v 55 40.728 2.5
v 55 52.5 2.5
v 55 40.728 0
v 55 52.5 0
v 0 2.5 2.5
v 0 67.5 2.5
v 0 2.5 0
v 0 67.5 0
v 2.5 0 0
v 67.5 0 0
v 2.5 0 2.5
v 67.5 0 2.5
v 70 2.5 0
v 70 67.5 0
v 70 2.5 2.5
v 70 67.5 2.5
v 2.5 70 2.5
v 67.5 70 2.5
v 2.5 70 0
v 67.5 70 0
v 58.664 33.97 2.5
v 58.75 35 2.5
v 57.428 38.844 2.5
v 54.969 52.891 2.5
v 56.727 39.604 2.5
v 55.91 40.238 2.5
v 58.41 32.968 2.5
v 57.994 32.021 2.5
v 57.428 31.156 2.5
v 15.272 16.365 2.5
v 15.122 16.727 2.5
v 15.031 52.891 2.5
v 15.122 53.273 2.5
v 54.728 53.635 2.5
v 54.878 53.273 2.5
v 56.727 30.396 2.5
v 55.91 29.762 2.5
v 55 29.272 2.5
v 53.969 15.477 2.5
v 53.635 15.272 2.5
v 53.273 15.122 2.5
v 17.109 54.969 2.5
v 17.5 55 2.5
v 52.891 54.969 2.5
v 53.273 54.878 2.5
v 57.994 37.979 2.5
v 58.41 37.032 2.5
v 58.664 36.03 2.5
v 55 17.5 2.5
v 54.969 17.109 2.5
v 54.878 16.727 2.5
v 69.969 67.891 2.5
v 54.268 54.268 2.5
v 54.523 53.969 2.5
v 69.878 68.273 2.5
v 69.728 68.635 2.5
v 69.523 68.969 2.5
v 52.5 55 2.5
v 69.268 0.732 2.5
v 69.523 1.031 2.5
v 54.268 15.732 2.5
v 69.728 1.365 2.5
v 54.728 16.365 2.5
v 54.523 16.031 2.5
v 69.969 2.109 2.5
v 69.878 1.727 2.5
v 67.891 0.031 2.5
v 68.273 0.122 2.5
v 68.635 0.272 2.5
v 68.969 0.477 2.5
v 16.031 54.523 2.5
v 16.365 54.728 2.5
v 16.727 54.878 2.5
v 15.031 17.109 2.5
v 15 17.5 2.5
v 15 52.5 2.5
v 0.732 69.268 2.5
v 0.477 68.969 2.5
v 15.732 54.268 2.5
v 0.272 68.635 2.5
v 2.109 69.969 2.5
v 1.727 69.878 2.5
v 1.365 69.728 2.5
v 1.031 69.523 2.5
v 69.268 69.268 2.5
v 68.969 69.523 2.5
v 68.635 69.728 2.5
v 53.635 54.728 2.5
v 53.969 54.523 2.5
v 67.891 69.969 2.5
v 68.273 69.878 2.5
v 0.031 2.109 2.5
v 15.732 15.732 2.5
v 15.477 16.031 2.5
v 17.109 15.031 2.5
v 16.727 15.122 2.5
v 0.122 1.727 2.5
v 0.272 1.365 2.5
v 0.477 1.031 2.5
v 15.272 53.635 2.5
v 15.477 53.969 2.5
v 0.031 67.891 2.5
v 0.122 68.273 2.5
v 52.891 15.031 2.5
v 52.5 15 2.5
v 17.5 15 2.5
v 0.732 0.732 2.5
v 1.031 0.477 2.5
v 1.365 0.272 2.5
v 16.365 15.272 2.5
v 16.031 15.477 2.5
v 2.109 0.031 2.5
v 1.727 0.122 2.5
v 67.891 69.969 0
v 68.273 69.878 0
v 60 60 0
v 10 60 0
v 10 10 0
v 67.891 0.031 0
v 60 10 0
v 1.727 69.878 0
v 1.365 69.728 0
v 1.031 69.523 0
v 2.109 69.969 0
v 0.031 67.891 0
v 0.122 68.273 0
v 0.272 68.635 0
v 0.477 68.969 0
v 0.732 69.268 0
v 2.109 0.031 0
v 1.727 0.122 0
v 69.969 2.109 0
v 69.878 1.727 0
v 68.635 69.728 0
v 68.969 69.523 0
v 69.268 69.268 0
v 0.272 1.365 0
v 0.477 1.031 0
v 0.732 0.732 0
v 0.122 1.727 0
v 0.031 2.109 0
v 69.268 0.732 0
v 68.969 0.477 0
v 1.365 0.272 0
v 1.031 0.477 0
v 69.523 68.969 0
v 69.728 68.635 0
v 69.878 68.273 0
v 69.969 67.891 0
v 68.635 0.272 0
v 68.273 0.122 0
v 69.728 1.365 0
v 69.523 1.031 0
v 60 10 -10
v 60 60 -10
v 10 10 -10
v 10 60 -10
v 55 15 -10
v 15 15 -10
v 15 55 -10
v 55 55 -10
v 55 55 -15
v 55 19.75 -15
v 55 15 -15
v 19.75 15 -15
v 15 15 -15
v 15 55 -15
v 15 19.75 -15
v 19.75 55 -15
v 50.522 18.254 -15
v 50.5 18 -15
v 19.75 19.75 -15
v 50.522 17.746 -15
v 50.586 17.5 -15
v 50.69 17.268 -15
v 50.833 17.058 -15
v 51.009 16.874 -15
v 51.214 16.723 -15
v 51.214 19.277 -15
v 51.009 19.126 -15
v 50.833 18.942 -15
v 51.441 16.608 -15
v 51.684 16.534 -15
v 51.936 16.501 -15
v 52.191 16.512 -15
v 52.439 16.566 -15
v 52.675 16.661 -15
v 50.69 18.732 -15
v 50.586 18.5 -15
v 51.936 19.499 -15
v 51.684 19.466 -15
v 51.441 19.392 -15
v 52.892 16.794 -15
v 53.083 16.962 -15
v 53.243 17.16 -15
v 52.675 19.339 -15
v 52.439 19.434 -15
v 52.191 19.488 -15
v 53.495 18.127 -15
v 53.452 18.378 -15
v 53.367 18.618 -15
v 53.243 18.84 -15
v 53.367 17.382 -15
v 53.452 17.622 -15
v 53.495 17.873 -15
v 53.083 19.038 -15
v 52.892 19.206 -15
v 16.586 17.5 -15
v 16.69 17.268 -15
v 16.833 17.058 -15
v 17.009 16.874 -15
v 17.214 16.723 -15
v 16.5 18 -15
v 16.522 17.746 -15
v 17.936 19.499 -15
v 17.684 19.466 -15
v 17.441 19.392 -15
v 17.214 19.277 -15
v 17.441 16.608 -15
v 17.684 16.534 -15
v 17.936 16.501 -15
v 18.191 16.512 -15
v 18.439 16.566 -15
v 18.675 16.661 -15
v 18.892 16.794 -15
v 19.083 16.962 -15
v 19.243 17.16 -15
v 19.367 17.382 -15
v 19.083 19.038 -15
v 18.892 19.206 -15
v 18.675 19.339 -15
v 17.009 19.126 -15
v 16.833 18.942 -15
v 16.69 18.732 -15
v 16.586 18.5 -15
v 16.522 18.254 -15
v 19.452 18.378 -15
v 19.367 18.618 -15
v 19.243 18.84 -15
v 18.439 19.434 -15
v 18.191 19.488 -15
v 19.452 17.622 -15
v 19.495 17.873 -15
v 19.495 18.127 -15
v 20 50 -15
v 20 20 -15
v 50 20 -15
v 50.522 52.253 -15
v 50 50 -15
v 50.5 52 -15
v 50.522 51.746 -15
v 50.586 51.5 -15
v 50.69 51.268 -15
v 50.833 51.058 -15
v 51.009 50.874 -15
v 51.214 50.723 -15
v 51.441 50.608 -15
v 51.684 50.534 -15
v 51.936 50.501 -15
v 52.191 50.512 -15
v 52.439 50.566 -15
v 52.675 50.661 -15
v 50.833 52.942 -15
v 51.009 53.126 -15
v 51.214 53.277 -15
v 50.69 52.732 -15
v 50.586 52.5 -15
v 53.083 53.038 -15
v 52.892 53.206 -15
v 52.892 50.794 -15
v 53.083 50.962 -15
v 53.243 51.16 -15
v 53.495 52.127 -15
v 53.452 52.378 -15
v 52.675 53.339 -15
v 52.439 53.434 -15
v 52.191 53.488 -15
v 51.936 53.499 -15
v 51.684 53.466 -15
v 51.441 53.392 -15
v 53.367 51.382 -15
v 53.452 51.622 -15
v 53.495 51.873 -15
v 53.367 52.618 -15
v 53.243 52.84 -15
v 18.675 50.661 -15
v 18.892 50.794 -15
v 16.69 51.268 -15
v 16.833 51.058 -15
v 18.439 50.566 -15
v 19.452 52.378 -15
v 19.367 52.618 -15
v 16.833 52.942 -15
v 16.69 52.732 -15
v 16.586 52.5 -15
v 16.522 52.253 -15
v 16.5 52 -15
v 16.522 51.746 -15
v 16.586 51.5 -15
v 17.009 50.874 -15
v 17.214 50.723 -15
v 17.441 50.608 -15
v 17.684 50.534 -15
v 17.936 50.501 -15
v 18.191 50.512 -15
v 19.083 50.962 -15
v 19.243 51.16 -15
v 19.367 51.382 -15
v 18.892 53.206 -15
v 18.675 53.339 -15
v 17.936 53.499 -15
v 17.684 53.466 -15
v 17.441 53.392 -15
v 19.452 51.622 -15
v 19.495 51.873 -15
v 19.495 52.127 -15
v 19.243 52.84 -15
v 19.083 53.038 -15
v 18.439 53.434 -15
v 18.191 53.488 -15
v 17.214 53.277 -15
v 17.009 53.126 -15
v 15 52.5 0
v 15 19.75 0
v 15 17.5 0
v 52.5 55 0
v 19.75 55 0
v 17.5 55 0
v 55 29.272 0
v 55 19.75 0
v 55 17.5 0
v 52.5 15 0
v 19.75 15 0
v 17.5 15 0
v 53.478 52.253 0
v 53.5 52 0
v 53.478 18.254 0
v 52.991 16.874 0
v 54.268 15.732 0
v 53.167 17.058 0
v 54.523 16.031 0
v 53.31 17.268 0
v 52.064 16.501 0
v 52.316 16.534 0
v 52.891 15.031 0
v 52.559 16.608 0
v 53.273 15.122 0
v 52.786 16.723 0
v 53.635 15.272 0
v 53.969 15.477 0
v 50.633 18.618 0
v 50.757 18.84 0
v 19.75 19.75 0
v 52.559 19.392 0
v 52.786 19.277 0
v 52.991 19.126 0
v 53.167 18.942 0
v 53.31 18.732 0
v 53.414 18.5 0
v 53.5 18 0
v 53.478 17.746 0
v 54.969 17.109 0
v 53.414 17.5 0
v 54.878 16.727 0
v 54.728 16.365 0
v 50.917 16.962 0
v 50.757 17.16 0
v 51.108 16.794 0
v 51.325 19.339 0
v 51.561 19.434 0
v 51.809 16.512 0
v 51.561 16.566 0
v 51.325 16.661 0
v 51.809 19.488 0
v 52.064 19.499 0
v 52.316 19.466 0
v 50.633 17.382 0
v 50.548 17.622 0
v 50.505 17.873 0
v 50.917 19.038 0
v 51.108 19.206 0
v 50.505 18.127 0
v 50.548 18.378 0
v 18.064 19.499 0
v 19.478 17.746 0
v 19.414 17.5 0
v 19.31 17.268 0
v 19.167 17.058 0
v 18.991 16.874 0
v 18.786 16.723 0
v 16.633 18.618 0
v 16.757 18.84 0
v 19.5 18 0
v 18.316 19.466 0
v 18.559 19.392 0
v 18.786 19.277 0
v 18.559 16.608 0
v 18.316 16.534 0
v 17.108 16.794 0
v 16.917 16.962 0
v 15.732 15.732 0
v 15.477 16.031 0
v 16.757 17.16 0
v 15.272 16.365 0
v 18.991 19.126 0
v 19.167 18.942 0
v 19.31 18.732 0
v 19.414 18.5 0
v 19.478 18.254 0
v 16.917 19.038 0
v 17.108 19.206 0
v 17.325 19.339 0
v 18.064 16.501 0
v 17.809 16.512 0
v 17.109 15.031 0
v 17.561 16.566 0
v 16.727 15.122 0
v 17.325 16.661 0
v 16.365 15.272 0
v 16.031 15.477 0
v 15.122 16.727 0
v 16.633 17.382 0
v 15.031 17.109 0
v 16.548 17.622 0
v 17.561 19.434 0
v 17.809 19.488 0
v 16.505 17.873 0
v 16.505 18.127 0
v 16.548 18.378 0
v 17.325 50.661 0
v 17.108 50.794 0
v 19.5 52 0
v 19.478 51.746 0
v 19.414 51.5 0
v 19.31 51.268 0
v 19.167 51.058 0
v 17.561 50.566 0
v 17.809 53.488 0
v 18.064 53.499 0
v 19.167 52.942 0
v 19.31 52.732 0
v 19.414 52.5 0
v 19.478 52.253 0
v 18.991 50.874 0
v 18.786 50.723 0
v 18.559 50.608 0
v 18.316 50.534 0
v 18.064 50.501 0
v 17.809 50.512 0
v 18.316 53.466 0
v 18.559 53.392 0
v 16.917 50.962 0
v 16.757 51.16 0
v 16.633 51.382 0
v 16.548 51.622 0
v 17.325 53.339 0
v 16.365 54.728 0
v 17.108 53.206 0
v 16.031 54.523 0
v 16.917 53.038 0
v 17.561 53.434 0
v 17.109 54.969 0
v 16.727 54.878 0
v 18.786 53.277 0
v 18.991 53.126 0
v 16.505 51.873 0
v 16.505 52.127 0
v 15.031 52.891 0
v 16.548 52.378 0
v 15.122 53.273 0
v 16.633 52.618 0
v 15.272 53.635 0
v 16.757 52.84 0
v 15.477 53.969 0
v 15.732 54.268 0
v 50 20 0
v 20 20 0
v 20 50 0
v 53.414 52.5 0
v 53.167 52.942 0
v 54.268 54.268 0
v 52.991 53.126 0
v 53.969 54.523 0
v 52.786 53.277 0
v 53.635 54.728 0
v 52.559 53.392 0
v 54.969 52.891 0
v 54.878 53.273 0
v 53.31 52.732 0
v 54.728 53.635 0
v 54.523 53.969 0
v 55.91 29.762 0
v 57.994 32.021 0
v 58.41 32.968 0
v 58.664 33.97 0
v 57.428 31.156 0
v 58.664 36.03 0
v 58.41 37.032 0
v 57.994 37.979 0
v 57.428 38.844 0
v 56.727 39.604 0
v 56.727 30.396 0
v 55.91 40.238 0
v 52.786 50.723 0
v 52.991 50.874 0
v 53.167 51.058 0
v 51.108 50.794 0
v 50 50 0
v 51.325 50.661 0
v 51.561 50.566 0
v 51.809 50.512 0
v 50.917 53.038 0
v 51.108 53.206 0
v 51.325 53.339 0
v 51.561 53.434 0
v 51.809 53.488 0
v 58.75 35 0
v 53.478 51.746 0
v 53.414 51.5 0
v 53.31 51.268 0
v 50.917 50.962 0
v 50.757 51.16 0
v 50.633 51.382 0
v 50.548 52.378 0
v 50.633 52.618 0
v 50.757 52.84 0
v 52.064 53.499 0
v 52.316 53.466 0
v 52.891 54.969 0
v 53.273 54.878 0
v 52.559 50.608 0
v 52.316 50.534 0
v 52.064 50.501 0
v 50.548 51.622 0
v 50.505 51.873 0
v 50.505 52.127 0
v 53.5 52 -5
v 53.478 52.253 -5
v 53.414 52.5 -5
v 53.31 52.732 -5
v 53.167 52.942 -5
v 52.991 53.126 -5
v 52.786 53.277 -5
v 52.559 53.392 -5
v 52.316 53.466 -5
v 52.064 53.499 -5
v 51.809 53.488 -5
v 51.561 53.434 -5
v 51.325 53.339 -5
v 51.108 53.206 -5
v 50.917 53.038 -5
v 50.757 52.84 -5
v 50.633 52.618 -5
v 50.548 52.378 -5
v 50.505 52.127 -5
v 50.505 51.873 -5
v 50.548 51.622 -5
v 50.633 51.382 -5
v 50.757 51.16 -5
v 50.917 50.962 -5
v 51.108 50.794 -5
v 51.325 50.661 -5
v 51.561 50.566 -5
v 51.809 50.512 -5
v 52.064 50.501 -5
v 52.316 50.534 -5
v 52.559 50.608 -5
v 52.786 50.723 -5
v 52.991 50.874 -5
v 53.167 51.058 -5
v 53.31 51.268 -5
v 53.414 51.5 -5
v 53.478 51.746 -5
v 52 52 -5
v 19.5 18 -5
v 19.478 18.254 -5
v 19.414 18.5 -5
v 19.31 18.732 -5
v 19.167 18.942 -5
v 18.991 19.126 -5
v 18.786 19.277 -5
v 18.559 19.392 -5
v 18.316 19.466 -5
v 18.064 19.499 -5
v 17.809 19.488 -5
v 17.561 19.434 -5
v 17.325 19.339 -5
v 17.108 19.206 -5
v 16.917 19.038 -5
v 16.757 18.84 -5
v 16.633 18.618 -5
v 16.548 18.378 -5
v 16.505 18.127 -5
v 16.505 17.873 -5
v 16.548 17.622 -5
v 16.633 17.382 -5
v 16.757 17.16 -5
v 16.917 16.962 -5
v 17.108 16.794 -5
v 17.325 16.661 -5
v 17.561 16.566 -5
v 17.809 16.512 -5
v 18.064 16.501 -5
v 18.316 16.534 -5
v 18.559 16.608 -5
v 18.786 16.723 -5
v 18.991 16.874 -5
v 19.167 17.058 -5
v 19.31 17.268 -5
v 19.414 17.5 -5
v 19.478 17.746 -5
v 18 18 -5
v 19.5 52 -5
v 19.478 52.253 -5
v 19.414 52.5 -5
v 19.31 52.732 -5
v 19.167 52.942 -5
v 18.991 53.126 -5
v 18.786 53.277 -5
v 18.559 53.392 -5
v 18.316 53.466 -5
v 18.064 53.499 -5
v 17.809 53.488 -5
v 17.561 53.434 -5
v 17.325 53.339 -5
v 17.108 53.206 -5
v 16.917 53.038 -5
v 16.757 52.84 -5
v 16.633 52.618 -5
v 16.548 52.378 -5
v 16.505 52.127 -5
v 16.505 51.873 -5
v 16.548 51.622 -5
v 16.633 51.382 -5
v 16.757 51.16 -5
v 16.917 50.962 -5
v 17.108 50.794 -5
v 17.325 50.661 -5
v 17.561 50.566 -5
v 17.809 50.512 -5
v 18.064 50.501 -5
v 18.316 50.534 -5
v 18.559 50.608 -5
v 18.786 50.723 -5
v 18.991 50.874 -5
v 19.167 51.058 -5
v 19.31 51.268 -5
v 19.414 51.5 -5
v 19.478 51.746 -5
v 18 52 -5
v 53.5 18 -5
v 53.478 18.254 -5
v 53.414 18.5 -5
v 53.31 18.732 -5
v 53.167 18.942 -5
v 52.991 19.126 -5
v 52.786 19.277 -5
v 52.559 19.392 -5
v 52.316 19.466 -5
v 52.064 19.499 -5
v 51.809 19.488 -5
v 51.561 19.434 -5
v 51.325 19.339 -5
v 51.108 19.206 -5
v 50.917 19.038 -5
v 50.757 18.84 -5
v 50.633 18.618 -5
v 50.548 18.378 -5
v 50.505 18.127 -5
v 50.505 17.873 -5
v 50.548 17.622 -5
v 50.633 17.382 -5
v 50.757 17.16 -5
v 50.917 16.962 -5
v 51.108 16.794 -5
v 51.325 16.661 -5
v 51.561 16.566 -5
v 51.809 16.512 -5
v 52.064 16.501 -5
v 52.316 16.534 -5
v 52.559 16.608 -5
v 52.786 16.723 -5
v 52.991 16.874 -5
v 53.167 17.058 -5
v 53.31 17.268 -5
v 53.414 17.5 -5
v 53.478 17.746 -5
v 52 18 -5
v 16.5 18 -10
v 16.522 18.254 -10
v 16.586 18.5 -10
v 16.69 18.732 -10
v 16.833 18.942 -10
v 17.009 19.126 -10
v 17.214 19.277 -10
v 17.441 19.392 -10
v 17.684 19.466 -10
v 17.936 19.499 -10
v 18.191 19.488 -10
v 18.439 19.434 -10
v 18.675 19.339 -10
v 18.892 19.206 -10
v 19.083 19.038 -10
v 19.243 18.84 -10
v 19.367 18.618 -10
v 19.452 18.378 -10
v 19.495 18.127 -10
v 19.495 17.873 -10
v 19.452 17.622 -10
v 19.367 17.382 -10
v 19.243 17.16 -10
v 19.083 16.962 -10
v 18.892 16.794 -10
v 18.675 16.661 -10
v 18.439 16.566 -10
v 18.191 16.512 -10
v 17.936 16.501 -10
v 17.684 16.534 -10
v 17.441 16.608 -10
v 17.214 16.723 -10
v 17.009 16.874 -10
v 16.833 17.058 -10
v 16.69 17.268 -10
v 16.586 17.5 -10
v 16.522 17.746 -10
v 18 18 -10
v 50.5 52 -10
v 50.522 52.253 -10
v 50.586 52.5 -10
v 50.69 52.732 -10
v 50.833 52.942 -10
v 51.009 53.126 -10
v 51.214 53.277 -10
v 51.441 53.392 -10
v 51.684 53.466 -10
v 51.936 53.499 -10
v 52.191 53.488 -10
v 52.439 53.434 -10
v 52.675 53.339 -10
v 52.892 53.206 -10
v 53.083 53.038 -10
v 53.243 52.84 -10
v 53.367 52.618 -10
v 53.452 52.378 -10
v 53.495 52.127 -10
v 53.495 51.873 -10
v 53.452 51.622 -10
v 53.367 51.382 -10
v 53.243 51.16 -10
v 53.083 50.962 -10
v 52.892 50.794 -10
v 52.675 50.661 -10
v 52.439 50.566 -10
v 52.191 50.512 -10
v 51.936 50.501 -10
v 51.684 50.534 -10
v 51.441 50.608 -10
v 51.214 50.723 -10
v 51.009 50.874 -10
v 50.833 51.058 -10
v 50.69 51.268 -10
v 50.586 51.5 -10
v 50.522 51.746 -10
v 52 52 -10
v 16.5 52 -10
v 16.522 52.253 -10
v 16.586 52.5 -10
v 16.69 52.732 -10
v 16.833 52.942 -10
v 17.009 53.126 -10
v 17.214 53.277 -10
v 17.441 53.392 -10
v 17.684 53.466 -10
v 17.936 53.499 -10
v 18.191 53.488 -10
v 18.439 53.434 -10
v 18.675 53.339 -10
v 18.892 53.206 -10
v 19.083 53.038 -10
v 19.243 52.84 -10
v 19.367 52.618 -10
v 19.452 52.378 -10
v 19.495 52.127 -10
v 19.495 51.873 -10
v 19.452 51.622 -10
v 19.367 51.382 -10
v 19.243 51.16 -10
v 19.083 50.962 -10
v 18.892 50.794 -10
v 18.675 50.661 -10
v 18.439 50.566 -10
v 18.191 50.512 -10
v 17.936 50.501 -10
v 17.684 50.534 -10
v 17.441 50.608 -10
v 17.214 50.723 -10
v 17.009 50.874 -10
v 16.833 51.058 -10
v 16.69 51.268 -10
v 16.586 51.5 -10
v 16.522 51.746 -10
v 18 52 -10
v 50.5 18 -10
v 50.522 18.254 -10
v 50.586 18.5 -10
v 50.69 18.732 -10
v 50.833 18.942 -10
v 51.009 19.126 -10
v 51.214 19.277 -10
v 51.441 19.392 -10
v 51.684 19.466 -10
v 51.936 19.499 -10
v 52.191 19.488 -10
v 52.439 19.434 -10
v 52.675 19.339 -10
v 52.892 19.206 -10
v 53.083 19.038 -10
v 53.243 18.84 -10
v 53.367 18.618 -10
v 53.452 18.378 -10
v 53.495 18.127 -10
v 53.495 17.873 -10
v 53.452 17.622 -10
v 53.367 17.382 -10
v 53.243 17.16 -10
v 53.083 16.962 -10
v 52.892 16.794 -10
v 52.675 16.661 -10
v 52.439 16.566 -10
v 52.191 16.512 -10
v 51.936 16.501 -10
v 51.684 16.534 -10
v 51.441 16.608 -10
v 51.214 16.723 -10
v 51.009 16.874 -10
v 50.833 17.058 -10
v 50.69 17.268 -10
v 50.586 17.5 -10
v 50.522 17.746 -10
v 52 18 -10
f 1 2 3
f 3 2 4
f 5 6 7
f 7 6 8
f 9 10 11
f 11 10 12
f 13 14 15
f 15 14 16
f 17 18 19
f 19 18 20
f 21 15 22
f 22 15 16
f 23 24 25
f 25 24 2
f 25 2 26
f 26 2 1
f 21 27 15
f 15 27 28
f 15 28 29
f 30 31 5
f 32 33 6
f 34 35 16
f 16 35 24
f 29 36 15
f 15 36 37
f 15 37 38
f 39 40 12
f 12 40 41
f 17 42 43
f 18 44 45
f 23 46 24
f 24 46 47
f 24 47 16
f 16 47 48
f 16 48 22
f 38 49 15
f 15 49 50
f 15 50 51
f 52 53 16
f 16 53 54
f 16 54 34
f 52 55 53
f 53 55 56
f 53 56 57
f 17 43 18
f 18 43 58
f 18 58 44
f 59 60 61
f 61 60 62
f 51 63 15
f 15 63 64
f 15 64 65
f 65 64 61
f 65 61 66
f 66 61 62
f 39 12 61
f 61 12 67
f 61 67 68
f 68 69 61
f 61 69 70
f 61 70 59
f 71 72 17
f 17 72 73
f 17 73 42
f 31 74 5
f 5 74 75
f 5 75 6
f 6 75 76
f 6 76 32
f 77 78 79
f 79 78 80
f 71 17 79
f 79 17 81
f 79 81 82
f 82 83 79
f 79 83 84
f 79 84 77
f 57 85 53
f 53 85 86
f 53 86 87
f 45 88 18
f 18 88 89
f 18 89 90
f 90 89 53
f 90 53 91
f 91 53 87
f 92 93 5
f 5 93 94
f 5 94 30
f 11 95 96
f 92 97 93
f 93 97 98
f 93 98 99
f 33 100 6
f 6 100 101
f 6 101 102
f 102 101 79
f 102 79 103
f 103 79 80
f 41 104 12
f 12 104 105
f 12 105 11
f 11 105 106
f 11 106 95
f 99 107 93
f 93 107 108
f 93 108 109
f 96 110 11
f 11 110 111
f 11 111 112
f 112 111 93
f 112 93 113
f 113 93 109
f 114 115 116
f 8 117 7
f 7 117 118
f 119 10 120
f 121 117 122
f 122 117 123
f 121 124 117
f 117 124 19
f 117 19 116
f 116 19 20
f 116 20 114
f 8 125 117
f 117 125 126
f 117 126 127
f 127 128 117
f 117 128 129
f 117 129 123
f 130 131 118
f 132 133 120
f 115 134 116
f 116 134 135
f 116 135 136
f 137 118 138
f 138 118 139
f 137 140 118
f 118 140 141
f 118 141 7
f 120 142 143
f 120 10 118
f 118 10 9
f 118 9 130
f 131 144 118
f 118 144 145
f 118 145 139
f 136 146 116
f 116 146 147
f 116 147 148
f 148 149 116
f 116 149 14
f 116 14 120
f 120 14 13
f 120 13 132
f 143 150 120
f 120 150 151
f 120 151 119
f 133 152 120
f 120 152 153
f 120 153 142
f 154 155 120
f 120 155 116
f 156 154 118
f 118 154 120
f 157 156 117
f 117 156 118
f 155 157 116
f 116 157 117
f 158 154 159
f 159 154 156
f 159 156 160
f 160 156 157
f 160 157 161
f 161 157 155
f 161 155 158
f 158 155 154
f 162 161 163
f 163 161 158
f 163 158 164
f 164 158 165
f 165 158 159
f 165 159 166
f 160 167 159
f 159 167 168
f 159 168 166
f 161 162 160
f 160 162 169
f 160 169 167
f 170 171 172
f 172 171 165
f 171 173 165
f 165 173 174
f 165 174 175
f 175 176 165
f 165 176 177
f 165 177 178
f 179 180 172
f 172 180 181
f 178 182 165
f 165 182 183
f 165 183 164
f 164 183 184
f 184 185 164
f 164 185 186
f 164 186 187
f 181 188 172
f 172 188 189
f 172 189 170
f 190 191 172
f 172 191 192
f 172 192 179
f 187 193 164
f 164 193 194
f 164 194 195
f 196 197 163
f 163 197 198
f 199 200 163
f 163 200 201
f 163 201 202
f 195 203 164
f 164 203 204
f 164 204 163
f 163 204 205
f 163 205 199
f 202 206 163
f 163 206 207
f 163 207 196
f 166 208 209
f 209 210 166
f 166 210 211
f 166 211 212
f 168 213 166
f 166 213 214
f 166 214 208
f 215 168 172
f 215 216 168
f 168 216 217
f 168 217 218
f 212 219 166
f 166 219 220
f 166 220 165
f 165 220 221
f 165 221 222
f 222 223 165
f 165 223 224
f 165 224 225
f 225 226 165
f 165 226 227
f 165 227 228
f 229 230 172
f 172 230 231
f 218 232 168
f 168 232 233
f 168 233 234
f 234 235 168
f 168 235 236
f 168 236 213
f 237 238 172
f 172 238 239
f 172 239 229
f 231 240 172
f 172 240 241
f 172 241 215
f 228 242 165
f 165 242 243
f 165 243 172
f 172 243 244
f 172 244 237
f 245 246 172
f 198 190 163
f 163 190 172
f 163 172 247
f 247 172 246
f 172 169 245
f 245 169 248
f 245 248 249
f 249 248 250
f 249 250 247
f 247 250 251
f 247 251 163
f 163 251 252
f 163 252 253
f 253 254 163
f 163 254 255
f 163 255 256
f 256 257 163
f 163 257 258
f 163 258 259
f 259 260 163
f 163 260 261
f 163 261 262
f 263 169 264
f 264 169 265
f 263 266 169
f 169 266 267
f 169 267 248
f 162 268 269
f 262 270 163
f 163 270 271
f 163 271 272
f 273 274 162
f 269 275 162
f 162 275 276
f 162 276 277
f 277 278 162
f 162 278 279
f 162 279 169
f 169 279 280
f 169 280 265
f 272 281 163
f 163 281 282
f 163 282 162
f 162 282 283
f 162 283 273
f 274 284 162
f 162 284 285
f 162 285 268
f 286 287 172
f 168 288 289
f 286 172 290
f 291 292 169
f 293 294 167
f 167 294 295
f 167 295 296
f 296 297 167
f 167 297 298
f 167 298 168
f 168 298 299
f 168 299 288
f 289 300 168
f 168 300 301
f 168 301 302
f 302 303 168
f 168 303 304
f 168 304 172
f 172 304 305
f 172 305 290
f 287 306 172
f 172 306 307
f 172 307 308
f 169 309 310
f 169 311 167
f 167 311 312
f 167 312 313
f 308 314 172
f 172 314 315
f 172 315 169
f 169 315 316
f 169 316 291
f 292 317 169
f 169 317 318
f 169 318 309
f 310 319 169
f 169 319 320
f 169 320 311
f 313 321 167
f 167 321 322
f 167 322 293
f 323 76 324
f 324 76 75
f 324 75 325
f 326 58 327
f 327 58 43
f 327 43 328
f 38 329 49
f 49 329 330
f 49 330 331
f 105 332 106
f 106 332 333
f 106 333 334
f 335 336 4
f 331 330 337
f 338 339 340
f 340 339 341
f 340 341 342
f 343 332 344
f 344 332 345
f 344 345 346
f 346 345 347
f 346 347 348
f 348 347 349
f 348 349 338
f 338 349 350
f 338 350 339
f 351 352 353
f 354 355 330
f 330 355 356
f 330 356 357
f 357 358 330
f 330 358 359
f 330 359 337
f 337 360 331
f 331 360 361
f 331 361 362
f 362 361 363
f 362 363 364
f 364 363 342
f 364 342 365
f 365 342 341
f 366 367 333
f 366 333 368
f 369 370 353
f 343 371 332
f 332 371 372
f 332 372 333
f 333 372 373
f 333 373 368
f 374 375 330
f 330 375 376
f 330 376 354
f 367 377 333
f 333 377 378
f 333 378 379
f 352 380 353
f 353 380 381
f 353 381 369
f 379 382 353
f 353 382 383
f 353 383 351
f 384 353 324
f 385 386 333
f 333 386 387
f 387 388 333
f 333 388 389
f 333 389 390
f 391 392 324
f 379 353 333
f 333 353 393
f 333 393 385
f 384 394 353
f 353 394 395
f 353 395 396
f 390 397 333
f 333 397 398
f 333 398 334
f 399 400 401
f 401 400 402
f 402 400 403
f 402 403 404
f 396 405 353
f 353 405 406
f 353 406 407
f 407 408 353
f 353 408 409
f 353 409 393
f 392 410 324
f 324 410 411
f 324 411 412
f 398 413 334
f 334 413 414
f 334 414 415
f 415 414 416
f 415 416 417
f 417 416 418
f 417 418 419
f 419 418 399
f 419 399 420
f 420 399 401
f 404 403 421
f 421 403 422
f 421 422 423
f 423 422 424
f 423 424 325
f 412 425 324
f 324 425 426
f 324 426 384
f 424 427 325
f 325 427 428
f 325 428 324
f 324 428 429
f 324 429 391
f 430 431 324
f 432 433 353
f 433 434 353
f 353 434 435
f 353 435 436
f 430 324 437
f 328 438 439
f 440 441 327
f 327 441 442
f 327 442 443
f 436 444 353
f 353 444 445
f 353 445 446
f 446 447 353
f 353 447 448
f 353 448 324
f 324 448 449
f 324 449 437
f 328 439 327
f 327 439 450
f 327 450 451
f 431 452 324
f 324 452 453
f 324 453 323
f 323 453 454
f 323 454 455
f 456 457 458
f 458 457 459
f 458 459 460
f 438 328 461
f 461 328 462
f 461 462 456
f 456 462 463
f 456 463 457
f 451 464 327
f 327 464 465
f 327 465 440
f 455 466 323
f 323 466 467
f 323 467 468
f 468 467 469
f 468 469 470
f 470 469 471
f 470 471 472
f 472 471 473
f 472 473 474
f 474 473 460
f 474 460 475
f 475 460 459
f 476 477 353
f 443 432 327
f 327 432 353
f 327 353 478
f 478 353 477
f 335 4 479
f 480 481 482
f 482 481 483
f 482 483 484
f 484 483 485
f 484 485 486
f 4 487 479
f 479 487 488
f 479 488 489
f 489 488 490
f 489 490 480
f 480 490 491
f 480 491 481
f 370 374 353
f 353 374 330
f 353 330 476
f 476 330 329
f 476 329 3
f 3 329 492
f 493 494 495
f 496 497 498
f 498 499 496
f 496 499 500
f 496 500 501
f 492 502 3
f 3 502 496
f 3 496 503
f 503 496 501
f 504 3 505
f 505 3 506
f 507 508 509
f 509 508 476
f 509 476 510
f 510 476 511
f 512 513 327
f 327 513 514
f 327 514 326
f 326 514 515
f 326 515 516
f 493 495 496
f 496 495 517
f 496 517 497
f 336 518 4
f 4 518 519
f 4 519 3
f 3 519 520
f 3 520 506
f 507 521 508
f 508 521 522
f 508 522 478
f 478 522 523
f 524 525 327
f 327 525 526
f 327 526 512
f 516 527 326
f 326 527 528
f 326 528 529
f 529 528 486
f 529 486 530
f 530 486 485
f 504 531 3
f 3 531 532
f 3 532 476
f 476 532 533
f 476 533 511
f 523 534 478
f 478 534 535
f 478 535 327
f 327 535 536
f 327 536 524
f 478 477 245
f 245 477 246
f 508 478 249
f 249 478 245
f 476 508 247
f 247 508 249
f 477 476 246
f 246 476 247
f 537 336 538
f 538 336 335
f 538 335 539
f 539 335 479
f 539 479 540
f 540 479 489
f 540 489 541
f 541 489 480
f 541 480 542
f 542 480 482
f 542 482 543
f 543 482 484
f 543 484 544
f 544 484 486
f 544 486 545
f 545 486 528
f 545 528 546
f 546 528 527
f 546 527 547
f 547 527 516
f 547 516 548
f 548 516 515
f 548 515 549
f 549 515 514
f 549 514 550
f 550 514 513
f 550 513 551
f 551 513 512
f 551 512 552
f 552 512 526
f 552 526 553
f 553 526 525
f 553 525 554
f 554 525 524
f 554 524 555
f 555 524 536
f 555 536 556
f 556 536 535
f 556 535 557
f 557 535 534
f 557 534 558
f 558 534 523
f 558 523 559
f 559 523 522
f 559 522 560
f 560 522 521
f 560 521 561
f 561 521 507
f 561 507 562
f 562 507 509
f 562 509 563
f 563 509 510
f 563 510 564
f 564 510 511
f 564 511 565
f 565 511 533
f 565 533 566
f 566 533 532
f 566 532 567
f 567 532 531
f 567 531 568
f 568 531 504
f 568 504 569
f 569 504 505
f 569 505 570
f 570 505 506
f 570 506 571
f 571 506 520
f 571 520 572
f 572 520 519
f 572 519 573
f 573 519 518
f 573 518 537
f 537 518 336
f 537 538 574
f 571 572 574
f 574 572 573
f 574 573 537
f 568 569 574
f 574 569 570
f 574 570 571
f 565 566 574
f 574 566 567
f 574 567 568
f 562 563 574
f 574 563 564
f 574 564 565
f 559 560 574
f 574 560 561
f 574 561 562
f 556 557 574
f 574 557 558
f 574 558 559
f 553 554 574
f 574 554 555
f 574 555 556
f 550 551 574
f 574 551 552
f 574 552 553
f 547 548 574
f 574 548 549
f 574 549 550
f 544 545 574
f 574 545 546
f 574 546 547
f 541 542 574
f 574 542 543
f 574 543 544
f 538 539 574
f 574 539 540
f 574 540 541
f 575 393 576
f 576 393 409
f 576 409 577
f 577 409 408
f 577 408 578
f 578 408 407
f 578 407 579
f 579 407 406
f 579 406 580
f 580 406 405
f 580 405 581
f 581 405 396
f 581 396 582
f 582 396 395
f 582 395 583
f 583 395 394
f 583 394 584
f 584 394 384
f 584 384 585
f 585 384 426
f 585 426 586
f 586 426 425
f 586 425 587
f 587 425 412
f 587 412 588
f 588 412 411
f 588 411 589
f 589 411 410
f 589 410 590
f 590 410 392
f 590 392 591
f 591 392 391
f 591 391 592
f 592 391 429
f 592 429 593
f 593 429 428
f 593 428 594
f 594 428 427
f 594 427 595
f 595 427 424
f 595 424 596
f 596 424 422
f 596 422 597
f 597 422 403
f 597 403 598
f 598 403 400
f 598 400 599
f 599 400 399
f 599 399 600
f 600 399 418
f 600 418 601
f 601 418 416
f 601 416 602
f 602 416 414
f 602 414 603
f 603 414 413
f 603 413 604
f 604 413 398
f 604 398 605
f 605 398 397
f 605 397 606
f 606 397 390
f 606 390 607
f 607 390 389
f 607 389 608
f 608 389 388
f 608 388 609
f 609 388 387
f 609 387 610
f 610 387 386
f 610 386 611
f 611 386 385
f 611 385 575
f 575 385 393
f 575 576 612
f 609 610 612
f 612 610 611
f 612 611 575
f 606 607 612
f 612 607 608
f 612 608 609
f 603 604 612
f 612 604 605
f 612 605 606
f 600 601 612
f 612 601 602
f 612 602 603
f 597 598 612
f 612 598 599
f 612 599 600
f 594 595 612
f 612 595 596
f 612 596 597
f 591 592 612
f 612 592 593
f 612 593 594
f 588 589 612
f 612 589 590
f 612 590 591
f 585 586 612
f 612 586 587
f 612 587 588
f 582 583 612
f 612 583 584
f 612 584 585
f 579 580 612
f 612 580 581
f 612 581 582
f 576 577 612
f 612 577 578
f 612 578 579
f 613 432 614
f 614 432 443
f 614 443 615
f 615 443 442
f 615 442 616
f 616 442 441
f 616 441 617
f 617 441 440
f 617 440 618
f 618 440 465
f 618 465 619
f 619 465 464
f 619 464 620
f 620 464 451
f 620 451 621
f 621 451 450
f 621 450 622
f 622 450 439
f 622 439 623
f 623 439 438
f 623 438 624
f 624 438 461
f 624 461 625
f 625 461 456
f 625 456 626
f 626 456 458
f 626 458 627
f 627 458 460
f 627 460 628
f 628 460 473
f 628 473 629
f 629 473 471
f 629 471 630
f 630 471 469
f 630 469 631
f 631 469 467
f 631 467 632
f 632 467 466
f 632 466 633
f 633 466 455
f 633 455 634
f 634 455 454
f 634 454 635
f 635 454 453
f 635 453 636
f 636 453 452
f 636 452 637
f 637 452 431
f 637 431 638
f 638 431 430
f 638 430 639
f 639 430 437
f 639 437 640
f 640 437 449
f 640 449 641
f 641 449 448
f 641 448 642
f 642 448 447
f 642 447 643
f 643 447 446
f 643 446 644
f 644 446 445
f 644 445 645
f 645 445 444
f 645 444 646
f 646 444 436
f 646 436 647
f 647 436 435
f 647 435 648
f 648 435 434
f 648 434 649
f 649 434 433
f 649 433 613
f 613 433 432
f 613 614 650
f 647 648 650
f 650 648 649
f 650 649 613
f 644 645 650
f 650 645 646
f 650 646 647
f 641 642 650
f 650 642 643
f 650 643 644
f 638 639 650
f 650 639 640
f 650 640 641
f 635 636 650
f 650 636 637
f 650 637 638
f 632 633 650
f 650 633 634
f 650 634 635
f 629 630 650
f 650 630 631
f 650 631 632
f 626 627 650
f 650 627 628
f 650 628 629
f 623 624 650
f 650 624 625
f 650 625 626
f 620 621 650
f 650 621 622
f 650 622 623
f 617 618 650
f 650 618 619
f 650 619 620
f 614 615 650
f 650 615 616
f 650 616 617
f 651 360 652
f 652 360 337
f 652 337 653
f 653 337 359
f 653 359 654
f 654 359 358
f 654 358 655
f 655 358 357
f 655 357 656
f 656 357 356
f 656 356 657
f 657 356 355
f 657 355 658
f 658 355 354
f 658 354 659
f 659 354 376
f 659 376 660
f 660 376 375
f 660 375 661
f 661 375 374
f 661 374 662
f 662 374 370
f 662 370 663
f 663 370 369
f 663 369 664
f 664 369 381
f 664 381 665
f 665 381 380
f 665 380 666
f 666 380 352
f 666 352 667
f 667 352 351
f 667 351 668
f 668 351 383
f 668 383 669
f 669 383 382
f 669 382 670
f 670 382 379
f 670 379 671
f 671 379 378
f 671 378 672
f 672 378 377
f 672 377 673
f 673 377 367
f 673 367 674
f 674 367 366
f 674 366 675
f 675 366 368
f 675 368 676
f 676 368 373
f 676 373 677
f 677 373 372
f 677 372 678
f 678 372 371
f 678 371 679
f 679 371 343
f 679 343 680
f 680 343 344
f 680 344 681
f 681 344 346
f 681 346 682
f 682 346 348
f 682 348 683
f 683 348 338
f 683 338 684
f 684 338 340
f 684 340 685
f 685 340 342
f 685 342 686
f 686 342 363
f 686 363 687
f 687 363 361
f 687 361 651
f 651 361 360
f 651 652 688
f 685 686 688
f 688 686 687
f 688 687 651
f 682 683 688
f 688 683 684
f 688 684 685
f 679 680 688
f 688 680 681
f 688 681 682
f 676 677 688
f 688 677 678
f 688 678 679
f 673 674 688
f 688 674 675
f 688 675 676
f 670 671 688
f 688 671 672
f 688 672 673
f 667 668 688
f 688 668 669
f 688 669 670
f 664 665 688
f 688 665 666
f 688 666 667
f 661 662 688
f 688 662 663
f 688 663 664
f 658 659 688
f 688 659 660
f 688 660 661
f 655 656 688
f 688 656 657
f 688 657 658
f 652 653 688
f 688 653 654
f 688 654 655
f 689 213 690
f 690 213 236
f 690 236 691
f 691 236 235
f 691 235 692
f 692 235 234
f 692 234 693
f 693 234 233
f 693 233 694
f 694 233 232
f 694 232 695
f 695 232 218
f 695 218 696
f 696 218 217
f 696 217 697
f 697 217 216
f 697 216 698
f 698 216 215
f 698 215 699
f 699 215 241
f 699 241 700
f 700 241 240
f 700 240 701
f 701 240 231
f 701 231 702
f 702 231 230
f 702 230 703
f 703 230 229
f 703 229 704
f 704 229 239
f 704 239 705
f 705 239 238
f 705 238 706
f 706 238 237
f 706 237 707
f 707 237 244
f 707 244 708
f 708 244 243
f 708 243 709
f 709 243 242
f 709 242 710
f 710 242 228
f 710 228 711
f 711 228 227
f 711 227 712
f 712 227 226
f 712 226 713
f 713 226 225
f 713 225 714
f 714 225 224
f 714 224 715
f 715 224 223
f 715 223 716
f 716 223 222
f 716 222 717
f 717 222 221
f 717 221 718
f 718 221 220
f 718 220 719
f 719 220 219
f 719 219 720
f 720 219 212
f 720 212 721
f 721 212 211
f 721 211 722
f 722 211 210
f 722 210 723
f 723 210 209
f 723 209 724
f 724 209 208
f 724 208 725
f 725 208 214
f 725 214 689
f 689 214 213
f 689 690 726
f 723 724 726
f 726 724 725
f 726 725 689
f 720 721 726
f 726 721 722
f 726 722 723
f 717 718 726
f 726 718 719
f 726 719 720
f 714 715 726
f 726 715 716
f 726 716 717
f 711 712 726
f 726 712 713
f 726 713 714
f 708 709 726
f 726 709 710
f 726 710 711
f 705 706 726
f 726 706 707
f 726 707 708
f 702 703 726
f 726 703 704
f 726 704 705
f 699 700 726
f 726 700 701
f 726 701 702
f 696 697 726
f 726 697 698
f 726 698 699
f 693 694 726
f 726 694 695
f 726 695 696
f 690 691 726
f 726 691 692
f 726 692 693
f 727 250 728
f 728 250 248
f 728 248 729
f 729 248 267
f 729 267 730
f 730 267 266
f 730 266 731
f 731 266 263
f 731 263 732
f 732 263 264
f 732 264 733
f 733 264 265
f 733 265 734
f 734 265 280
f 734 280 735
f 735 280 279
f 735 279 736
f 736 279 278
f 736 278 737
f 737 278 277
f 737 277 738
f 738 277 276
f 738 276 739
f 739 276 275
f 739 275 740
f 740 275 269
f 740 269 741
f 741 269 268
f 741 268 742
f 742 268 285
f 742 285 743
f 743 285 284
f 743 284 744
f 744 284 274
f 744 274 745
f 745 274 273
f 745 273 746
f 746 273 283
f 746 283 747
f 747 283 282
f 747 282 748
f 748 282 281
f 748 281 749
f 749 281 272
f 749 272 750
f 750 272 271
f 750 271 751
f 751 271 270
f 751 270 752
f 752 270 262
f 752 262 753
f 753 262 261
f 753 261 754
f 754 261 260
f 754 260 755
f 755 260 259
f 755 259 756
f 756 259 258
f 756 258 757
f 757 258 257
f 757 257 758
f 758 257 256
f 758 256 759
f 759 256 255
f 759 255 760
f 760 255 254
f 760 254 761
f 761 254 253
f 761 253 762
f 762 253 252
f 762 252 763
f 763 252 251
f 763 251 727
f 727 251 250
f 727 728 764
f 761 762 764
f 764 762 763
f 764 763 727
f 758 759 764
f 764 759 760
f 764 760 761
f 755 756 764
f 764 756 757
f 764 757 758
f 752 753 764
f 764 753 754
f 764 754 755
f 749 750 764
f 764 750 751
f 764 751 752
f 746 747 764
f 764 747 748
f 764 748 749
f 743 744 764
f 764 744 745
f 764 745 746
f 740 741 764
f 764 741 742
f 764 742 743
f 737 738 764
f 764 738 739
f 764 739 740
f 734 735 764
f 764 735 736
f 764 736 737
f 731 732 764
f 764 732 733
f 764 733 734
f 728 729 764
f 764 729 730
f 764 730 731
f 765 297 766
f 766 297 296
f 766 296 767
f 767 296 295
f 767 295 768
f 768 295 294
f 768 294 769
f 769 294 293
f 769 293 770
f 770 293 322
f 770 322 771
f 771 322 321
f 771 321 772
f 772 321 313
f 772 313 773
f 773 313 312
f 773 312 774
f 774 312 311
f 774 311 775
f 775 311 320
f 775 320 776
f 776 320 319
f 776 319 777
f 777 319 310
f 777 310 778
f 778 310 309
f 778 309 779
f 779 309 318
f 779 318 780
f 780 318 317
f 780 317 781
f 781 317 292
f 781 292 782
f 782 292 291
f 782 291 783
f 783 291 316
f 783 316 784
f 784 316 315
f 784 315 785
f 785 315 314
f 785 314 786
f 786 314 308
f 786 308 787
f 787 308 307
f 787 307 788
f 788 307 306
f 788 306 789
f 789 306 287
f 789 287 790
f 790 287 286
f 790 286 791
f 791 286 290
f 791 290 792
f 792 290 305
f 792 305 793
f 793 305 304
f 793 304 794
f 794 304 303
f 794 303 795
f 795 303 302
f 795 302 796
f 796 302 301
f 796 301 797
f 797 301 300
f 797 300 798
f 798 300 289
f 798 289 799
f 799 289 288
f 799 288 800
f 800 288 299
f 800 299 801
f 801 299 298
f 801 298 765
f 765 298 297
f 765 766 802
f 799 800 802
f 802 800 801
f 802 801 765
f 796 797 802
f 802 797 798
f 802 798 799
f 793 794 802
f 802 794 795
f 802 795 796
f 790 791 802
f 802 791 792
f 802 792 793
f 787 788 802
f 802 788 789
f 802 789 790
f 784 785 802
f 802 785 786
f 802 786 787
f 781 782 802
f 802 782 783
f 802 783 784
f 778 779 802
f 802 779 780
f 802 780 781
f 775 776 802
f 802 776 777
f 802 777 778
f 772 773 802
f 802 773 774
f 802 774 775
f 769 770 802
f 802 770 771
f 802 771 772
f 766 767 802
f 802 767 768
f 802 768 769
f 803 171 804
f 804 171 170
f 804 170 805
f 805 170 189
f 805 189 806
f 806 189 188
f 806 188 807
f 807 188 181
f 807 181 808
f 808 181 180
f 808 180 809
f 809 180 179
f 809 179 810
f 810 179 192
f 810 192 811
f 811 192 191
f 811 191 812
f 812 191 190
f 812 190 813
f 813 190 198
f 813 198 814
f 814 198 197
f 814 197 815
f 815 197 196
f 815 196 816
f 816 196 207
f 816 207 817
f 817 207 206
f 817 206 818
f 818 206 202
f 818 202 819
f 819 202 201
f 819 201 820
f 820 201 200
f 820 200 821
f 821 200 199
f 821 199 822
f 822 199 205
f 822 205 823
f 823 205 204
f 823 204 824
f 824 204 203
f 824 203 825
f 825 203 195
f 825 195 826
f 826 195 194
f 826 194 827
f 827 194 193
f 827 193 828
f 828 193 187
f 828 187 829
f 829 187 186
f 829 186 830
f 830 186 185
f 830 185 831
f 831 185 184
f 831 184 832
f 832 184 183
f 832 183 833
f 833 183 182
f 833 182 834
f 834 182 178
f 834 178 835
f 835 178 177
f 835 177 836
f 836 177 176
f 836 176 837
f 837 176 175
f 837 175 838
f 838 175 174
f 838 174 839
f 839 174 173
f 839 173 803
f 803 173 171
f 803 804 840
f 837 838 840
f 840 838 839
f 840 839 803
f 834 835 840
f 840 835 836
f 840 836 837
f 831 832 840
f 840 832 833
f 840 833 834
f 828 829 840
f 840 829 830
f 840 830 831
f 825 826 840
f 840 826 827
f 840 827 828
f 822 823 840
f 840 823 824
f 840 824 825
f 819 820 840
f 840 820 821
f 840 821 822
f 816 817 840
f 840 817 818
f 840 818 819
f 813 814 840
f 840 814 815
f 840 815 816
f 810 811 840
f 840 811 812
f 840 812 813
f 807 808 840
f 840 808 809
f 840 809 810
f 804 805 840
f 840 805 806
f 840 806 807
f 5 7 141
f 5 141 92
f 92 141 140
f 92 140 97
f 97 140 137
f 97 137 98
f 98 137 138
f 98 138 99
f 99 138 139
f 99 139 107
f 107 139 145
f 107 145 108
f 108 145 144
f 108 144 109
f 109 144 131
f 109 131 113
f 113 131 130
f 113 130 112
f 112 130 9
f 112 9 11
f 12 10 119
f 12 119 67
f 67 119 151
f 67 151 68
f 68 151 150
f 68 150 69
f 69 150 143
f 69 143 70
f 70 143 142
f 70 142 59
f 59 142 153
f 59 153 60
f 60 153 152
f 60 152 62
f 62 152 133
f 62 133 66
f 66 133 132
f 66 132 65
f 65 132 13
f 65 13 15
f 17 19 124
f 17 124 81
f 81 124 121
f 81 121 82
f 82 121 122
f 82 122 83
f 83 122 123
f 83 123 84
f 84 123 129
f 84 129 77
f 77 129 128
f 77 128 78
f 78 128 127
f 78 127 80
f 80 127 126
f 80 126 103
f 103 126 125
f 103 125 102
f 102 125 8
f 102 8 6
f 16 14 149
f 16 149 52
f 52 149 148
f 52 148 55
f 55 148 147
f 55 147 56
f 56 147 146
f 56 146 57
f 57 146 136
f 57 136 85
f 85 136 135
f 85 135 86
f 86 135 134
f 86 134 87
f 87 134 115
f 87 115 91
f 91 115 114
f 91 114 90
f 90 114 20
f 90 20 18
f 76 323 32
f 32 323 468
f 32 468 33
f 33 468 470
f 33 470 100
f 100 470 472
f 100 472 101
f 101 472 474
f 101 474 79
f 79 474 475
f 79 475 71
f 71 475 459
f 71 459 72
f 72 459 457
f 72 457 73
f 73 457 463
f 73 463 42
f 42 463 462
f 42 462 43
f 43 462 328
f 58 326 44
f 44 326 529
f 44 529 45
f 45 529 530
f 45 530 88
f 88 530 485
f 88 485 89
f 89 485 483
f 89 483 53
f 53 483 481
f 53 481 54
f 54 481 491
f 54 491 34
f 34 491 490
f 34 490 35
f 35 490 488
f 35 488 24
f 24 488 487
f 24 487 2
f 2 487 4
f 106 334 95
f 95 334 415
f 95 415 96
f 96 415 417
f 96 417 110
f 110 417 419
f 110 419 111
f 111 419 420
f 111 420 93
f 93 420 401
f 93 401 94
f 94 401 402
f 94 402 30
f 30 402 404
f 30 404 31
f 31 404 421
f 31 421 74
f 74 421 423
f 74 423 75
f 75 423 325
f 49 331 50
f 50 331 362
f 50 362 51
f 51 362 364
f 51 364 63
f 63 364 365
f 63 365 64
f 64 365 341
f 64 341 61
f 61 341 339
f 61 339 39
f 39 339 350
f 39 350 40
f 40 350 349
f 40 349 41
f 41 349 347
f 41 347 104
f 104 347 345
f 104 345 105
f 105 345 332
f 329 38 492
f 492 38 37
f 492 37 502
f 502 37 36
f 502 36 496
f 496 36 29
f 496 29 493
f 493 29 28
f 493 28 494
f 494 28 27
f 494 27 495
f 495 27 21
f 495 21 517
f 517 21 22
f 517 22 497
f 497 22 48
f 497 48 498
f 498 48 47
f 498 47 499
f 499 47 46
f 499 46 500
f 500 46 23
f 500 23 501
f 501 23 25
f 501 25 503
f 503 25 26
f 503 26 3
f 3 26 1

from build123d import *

# Parameters (mm, degrees)
SKETCH1_W           = 70
SKETCH1_H           = 70
BOSS_EXTRUDE1_DEPTH = 2.5
SKETCH3_W           = 50
SKETCH3_H           = 50
BOSS_EXTRUDE4_DEPTH = 10
SKETCH5_W           = 40
SKETCH5_H           = 40
BOSS_EXTRUDE5_DEPTH = 5
SKETCH2_W           = 40
SKETCH2_H           = 40
CUT_EXTRUDE4_DEPTH  = 2.5
SKETCH6_W           = 30
SKETCH6_H           = 30
CUT_EXTRUDE5_DEPTH  = 15
SKETCH8_R           = 1.5
CUT_EXTRUDE6_DEPTH  = 5
SKETCH9_R           = 1.5
CUT_EXTRUDE7_DEPTH  = 5
FILLET1_R           = 2.5
FILLET2_R           = 2.5
FILLET3_R           = 2.5
SKETCH10_R          = 6.25
CUT_EXTRUDE12_DEPTH = 2.5


with BuildPart() as part:
    # Sketch1 → Boss-Extrude1 (new body)
    with BuildSketch(Plane.XY):
        with Locations((35, 35)):
            Rectangle(SKETCH1_W, SKETCH1_H)
    extrude(amount=BOSS_EXTRUDE1_DEPTH)

    # Sketch3 → Boss-Extrude4 (add)
    with BuildSketch(Plane(origin=(0, 0, 0), x_dir=(-1, 0, 0), z_dir=(0, 0, -1))):
        with Locations((-35, 35)):
            Rectangle(SKETCH3_W, SKETCH3_H)
    extrude(amount=BOSS_EXTRUDE4_DEPTH)

    # Sketch5 → Boss-Extrude5 (add)
    with BuildSketch(Plane(origin=(0, 0, -10), x_dir=(-1, 0, 0), z_dir=(0, 0, -1))):
        with Locations((-35, 35)):
            Rectangle(SKETCH5_W, SKETCH5_H)
    extrude(amount=BOSS_EXTRUDE5_DEPTH)

    # Sketch2 → Cut-Extrude4 (cut)
    with BuildSketch(Plane.XY.offset(2.5)):
        with Locations((35, 35)):
            Rectangle(SKETCH2_W, SKETCH2_H)
    extrude(amount=-CUT_EXTRUDE4_DEPTH, mode=Mode.SUBTRACT)

    # Sketch6 → Cut-Extrude5 (cut)
    with BuildSketch(Plane.XY):
        with Locations((35, 35)):
            Rectangle(SKETCH6_W, SKETCH6_H)
    extrude(amount=-CUT_EXTRUDE5_DEPTH, mode=Mode.SUBTRACT)

    # Sketch8 → Cut-Extrude6 (cut)
    with BuildSketch(Plane.XY):
        with Locations((52, 52)):
            Circle(SKETCH8_R)
        with Locations((52, 18)):
            Circle(SKETCH8_R)
        with Locations((18, 52)):
            Circle(SKETCH8_R)
        with Locations((18, 18)):
            Circle(SKETCH8_R)
    extrude(amount=-CUT_EXTRUDE6_DEPTH, mode=Mode.SUBTRACT)

    # Sketch9 → Cut-Extrude7 (cut)
    with BuildSketch(Plane(origin=(0, 0, -15), x_dir=(-1, 0, 0), z_dir=(0, 0, -1))):
        with Locations((-18, 18)):
            Circle(SKETCH9_R)
        with Locations((-52, 18)):
            Circle(SKETCH9_R)
        with Locations((-18, 52)):
            Circle(SKETCH9_R)
        with Locations((-52, 52)):
            Circle(SKETCH9_R)
    extrude(amount=-CUT_EXTRUDE7_DEPTH, mode=Mode.SUBTRACT)

    # Fillet1
    fillet1_edges = [part.edges().sort_by_distance(p)[0] for p in [
        (0, 70, 1.25),
        (70, 70, 1.25),
        (70, 0, 1.25),
        (0, 0, 1.25),
    ]]
    fillet(fillet1_edges, radius=FILLET1_R)

    # Fillet2
    fillet2_edges = [part.edges().sort_by_distance(p)[0] for p in [
        (15, 55, 1.25),
        (55, 55, 1.25),
    ]]
    fillet(fillet2_edges, radius=FILLET2_R)

    # Fillet3
    fillet3_edges = [part.edges().sort_by_distance(p)[0] for p in [
        (15, 15, 1.25),
        (55, 15, 1.25),
    ]]
    fillet(fillet3_edges, radius=FILLET3_R)

    # Sketch10 → Cut-Extrude12 (cut)
    with BuildSketch(Plane.XY.offset(2.5)):
        with Locations((52.5, 35)):
            Circle(SKETCH10_R)
    extrude(amount=-CUT_EXTRUDE12_DEPTH, mode=Mode.SUBTRACT)


solid = part.part
